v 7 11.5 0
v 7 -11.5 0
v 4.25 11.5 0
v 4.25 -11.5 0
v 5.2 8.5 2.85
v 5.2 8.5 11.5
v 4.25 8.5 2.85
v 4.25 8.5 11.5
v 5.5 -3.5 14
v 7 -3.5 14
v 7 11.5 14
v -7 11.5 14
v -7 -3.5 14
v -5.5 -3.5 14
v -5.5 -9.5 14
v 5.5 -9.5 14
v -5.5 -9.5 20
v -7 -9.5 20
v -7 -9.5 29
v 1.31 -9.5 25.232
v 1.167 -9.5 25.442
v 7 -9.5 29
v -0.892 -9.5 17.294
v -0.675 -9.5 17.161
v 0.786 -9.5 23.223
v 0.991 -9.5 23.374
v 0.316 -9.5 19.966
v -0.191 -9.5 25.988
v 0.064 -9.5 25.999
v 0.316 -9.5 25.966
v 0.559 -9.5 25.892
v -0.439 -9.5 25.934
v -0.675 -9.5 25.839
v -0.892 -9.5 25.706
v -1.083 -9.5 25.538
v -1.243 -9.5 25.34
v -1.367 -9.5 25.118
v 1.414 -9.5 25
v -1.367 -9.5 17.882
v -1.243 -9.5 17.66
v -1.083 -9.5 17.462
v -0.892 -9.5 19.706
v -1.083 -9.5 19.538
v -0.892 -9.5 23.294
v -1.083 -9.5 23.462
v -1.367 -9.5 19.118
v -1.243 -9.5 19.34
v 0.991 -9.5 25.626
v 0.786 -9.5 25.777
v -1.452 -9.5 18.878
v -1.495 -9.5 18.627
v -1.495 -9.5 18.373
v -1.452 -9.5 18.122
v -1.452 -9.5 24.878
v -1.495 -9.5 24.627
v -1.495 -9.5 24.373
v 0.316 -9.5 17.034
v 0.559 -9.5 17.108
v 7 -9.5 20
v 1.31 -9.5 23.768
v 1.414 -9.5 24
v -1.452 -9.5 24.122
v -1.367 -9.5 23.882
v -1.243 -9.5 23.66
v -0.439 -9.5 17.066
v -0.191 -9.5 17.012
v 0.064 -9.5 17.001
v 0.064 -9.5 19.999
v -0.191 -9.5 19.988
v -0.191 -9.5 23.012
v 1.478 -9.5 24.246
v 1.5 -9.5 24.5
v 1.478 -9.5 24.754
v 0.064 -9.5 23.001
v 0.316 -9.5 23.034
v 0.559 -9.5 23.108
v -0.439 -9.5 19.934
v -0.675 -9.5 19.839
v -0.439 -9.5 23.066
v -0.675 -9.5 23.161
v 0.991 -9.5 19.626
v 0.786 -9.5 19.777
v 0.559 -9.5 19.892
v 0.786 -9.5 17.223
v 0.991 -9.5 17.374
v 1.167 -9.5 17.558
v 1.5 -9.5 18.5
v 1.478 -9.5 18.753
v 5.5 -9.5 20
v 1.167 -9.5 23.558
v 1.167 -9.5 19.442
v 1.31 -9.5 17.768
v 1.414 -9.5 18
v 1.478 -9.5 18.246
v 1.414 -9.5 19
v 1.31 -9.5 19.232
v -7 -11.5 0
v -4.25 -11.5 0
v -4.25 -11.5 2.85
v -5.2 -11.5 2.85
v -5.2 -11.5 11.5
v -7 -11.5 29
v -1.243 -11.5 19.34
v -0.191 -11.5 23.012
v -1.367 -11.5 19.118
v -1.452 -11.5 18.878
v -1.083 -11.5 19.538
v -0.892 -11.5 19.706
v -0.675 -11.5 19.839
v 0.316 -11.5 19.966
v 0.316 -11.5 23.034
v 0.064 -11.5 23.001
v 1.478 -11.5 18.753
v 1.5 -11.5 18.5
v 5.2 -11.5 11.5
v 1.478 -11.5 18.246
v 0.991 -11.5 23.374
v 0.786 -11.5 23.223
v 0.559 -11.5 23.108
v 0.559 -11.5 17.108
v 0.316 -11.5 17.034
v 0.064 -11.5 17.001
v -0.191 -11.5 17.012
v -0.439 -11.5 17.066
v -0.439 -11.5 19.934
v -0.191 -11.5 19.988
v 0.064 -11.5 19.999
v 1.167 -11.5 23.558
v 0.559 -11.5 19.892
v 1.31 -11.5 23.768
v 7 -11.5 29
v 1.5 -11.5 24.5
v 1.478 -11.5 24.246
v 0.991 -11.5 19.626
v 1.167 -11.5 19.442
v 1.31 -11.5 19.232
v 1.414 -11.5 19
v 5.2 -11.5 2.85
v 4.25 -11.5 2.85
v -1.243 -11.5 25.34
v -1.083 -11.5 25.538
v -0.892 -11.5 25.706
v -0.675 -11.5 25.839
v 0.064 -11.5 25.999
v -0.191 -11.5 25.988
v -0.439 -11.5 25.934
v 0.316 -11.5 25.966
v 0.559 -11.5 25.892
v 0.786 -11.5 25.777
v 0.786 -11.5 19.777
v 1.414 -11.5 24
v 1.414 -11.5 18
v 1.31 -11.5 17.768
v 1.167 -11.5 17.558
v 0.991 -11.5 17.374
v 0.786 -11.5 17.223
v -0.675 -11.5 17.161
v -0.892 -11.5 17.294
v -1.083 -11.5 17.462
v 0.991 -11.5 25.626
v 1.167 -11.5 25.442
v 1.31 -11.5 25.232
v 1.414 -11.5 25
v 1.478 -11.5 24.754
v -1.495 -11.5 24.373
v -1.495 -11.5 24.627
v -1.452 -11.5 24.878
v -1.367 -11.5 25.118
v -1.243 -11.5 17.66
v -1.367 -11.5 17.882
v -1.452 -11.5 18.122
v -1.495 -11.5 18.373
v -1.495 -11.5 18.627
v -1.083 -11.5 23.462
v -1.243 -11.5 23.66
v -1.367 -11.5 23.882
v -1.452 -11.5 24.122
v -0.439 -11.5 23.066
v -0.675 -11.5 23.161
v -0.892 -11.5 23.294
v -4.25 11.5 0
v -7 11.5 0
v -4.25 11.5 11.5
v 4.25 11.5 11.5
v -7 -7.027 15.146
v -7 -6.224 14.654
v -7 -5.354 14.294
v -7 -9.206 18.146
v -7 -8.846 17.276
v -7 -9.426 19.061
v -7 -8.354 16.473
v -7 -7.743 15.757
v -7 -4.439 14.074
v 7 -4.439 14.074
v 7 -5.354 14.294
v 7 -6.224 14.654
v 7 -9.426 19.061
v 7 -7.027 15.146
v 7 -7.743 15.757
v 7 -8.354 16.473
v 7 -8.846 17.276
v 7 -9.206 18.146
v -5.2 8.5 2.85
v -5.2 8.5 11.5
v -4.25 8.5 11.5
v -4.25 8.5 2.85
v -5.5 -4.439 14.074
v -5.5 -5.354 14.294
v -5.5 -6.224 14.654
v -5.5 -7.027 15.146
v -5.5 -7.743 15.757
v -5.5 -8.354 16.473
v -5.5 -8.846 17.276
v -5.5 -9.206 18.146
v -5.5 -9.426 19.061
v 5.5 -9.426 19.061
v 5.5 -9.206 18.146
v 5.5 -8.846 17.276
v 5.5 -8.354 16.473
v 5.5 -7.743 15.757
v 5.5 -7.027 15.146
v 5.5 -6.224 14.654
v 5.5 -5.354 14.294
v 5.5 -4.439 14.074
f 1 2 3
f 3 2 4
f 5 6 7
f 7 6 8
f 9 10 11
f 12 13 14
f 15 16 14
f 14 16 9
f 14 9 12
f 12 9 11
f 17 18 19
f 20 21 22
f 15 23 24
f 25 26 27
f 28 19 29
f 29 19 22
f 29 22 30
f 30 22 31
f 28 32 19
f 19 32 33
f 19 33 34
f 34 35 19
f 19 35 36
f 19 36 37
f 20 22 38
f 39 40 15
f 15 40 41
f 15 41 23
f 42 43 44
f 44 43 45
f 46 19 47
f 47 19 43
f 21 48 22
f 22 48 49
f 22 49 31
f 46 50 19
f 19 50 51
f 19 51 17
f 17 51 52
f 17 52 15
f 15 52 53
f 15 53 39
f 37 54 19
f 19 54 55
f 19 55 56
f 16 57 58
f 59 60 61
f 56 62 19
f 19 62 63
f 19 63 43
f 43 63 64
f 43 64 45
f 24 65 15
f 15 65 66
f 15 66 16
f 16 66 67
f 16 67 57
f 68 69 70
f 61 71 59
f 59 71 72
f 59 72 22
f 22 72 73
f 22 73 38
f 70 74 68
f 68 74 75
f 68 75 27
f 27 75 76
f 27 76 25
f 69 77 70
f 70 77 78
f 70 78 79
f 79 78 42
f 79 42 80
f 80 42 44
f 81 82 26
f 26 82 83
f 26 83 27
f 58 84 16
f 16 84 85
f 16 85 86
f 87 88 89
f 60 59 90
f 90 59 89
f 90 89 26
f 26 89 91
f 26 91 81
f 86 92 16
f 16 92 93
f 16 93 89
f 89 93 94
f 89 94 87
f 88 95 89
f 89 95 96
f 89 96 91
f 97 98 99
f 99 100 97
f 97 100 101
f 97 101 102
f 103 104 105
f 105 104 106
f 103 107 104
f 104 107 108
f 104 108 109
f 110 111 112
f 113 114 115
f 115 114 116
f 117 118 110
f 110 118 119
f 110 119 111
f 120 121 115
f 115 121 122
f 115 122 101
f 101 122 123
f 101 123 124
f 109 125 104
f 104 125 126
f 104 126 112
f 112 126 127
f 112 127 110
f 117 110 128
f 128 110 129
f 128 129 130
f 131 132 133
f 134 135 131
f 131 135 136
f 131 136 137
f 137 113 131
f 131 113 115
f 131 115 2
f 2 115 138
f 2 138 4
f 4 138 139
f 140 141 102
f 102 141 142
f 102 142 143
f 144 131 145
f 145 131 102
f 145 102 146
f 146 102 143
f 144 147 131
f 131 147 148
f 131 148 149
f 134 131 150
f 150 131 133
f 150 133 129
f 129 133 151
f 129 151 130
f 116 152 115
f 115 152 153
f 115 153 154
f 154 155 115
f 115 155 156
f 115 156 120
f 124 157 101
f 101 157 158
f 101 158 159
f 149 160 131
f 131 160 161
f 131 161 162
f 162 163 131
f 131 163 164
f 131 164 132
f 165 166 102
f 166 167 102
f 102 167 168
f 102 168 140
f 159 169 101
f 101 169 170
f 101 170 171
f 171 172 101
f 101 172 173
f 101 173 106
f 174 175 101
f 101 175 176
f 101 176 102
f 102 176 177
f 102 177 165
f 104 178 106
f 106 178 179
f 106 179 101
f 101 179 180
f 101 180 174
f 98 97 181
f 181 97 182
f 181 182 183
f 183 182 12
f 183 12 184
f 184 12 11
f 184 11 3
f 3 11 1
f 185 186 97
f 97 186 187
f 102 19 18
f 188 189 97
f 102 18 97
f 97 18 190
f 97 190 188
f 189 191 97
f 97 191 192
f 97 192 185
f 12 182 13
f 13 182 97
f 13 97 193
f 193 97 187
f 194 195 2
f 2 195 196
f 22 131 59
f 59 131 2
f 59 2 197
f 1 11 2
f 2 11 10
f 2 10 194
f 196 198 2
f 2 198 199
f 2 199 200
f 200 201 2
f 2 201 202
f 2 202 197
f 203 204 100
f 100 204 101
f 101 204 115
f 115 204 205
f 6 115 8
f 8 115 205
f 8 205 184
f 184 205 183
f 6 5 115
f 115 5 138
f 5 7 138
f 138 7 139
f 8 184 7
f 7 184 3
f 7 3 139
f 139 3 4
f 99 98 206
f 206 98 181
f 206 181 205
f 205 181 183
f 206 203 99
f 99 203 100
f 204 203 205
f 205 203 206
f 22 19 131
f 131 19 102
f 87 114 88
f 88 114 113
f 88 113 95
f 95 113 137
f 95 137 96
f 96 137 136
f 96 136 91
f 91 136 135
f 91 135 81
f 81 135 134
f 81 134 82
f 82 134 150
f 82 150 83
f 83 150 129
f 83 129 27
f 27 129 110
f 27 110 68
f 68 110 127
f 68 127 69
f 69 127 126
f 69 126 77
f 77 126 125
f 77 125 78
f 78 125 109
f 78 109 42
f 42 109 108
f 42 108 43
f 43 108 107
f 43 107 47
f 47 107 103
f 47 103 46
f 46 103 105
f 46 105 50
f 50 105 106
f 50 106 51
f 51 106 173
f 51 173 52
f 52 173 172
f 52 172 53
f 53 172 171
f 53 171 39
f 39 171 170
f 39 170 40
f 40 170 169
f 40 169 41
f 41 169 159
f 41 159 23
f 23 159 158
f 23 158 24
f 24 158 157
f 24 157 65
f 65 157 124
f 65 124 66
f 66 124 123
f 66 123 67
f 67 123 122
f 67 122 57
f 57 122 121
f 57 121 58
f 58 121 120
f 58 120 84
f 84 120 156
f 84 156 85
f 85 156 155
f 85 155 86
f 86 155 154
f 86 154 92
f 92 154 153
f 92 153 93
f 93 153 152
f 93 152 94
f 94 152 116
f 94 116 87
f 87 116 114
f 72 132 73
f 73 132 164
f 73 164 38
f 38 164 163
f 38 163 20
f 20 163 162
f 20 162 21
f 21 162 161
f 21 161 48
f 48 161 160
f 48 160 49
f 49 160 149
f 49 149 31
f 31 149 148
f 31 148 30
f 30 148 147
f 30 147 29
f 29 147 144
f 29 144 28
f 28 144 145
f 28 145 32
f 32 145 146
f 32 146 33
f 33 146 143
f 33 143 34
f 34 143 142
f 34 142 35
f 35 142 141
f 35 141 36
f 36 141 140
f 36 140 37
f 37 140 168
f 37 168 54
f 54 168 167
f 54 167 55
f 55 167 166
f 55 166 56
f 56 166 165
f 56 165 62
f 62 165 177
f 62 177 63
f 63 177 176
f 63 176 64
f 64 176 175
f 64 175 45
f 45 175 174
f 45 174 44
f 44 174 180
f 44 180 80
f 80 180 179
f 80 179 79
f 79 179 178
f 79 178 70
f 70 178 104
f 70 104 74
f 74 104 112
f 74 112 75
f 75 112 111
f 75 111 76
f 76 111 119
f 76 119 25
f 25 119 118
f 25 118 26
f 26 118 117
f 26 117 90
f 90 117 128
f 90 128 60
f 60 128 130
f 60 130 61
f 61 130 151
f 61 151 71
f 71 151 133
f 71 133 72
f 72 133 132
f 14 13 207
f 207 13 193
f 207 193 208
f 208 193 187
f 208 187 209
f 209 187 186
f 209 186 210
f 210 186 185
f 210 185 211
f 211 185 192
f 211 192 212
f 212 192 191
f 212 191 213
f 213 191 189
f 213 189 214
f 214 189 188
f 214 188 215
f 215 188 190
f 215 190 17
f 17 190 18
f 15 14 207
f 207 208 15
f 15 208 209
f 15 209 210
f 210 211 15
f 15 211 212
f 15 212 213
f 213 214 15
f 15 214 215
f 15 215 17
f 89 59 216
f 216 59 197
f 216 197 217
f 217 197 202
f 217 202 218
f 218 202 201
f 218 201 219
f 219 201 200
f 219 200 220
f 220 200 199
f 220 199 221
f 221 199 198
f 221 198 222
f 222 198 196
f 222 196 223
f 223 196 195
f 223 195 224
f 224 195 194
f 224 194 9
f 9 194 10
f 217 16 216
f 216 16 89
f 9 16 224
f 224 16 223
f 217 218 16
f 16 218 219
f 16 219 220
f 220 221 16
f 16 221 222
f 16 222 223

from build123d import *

# Parameters (mm, degrees)
SKETCH1_W           = 14
SKETCH1_H           = 23
BOSS_EXTRUDE1_DEPTH = 14
SKETCH2_W           = 10.4
SKETCH2_H           = 8.65
SKETCH2_W_2         = 8.5
SKETCH2_H_2         = 2.85
CUT_EXTRUDE1_DEPTH  = 20
SKETCH3_W           = 14
SKETCH3_H           = 15
SKETCH3_R           = 1.5
BOSS_EXTRUDE2_DEPTH = 2
BOSS_EXTRUDE3_DEPTH = 1.5
SKETCH5_W           = 8.5
SKETCH5_H           = 11.5
CUT_EXTRUDE2_DEPTH  = 4


with BuildPart() as part:
    # Sketch1 → Boss-Extrude1 (new body)
    with BuildSketch(Plane.XY):
        Rectangle(SKETCH1_W, SKETCH1_H)
    extrude(amount=BOSS_EXTRUDE1_DEPTH)

    # Sketch2 → Cut-Extrude1 (cut)
    with BuildSketch(Plane.XZ.offset(11.5)):
        with Locations((0, 7.175)):
            Rectangle(SKETCH2_W, SKETCH2_H)
        with Locations((0, 1.425)):
            Rectangle(SKETCH2_W_2, SKETCH2_H_2)
    extrude(amount=-CUT_EXTRUDE1_DEPTH, mode=Mode.SUBTRACT)

    # Sketch3 → Boss-Extrude2 (add)
    with BuildSketch(Plane.XZ.offset(11.5)):
        with Locations((0, 21.5)):
            Rectangle(SKETCH3_W, SKETCH3_H)
        with Locations((0, 18.5)):
            Circle(SKETCH3_R, mode=Mode.SUBTRACT)
        with Locations((0, 24.5)):
            Circle(SKETCH3_R, mode=Mode.SUBTRACT)
    extrude(amount=-BOSS_EXTRUDE2_DEPTH)

    # Sketch4 → Boss-Extrude3 (add)
    with BuildSketch(Plane.ZY.offset(7)):
        with BuildLine():
            Line((14, -3.5), (14, -9.5))
            Line((14, -9.5), (20, -9.5))
            ThreePointArc((20, -9.5), (15.757359313, -7.742640687), (14, -3.5))
        make_face()
    boss_extrude3 = extrude(amount=-BOSS_EXTRUDE3_DEPTH)

    # Mirror1: Boss-Extrude3 across plane
    add(boss_extrude3.mirror(Plane(origin=(0, 0, 0), x_dir=(0, 0, 1), z_dir=(1, 0, 0))))

    # Sketch5 → Cut-Extrude2 (cut, through all)
    with BuildSketch(Plane.XZ.offset(-8.5)):
        with Locations((0, 5.75)):
            Rectangle(SKETCH5_W, SKETCH5_H)
    extrude(amount=-CUT_EXTRUDE2_DEPTH, mode=Mode.SUBTRACT)


solid = part.part
